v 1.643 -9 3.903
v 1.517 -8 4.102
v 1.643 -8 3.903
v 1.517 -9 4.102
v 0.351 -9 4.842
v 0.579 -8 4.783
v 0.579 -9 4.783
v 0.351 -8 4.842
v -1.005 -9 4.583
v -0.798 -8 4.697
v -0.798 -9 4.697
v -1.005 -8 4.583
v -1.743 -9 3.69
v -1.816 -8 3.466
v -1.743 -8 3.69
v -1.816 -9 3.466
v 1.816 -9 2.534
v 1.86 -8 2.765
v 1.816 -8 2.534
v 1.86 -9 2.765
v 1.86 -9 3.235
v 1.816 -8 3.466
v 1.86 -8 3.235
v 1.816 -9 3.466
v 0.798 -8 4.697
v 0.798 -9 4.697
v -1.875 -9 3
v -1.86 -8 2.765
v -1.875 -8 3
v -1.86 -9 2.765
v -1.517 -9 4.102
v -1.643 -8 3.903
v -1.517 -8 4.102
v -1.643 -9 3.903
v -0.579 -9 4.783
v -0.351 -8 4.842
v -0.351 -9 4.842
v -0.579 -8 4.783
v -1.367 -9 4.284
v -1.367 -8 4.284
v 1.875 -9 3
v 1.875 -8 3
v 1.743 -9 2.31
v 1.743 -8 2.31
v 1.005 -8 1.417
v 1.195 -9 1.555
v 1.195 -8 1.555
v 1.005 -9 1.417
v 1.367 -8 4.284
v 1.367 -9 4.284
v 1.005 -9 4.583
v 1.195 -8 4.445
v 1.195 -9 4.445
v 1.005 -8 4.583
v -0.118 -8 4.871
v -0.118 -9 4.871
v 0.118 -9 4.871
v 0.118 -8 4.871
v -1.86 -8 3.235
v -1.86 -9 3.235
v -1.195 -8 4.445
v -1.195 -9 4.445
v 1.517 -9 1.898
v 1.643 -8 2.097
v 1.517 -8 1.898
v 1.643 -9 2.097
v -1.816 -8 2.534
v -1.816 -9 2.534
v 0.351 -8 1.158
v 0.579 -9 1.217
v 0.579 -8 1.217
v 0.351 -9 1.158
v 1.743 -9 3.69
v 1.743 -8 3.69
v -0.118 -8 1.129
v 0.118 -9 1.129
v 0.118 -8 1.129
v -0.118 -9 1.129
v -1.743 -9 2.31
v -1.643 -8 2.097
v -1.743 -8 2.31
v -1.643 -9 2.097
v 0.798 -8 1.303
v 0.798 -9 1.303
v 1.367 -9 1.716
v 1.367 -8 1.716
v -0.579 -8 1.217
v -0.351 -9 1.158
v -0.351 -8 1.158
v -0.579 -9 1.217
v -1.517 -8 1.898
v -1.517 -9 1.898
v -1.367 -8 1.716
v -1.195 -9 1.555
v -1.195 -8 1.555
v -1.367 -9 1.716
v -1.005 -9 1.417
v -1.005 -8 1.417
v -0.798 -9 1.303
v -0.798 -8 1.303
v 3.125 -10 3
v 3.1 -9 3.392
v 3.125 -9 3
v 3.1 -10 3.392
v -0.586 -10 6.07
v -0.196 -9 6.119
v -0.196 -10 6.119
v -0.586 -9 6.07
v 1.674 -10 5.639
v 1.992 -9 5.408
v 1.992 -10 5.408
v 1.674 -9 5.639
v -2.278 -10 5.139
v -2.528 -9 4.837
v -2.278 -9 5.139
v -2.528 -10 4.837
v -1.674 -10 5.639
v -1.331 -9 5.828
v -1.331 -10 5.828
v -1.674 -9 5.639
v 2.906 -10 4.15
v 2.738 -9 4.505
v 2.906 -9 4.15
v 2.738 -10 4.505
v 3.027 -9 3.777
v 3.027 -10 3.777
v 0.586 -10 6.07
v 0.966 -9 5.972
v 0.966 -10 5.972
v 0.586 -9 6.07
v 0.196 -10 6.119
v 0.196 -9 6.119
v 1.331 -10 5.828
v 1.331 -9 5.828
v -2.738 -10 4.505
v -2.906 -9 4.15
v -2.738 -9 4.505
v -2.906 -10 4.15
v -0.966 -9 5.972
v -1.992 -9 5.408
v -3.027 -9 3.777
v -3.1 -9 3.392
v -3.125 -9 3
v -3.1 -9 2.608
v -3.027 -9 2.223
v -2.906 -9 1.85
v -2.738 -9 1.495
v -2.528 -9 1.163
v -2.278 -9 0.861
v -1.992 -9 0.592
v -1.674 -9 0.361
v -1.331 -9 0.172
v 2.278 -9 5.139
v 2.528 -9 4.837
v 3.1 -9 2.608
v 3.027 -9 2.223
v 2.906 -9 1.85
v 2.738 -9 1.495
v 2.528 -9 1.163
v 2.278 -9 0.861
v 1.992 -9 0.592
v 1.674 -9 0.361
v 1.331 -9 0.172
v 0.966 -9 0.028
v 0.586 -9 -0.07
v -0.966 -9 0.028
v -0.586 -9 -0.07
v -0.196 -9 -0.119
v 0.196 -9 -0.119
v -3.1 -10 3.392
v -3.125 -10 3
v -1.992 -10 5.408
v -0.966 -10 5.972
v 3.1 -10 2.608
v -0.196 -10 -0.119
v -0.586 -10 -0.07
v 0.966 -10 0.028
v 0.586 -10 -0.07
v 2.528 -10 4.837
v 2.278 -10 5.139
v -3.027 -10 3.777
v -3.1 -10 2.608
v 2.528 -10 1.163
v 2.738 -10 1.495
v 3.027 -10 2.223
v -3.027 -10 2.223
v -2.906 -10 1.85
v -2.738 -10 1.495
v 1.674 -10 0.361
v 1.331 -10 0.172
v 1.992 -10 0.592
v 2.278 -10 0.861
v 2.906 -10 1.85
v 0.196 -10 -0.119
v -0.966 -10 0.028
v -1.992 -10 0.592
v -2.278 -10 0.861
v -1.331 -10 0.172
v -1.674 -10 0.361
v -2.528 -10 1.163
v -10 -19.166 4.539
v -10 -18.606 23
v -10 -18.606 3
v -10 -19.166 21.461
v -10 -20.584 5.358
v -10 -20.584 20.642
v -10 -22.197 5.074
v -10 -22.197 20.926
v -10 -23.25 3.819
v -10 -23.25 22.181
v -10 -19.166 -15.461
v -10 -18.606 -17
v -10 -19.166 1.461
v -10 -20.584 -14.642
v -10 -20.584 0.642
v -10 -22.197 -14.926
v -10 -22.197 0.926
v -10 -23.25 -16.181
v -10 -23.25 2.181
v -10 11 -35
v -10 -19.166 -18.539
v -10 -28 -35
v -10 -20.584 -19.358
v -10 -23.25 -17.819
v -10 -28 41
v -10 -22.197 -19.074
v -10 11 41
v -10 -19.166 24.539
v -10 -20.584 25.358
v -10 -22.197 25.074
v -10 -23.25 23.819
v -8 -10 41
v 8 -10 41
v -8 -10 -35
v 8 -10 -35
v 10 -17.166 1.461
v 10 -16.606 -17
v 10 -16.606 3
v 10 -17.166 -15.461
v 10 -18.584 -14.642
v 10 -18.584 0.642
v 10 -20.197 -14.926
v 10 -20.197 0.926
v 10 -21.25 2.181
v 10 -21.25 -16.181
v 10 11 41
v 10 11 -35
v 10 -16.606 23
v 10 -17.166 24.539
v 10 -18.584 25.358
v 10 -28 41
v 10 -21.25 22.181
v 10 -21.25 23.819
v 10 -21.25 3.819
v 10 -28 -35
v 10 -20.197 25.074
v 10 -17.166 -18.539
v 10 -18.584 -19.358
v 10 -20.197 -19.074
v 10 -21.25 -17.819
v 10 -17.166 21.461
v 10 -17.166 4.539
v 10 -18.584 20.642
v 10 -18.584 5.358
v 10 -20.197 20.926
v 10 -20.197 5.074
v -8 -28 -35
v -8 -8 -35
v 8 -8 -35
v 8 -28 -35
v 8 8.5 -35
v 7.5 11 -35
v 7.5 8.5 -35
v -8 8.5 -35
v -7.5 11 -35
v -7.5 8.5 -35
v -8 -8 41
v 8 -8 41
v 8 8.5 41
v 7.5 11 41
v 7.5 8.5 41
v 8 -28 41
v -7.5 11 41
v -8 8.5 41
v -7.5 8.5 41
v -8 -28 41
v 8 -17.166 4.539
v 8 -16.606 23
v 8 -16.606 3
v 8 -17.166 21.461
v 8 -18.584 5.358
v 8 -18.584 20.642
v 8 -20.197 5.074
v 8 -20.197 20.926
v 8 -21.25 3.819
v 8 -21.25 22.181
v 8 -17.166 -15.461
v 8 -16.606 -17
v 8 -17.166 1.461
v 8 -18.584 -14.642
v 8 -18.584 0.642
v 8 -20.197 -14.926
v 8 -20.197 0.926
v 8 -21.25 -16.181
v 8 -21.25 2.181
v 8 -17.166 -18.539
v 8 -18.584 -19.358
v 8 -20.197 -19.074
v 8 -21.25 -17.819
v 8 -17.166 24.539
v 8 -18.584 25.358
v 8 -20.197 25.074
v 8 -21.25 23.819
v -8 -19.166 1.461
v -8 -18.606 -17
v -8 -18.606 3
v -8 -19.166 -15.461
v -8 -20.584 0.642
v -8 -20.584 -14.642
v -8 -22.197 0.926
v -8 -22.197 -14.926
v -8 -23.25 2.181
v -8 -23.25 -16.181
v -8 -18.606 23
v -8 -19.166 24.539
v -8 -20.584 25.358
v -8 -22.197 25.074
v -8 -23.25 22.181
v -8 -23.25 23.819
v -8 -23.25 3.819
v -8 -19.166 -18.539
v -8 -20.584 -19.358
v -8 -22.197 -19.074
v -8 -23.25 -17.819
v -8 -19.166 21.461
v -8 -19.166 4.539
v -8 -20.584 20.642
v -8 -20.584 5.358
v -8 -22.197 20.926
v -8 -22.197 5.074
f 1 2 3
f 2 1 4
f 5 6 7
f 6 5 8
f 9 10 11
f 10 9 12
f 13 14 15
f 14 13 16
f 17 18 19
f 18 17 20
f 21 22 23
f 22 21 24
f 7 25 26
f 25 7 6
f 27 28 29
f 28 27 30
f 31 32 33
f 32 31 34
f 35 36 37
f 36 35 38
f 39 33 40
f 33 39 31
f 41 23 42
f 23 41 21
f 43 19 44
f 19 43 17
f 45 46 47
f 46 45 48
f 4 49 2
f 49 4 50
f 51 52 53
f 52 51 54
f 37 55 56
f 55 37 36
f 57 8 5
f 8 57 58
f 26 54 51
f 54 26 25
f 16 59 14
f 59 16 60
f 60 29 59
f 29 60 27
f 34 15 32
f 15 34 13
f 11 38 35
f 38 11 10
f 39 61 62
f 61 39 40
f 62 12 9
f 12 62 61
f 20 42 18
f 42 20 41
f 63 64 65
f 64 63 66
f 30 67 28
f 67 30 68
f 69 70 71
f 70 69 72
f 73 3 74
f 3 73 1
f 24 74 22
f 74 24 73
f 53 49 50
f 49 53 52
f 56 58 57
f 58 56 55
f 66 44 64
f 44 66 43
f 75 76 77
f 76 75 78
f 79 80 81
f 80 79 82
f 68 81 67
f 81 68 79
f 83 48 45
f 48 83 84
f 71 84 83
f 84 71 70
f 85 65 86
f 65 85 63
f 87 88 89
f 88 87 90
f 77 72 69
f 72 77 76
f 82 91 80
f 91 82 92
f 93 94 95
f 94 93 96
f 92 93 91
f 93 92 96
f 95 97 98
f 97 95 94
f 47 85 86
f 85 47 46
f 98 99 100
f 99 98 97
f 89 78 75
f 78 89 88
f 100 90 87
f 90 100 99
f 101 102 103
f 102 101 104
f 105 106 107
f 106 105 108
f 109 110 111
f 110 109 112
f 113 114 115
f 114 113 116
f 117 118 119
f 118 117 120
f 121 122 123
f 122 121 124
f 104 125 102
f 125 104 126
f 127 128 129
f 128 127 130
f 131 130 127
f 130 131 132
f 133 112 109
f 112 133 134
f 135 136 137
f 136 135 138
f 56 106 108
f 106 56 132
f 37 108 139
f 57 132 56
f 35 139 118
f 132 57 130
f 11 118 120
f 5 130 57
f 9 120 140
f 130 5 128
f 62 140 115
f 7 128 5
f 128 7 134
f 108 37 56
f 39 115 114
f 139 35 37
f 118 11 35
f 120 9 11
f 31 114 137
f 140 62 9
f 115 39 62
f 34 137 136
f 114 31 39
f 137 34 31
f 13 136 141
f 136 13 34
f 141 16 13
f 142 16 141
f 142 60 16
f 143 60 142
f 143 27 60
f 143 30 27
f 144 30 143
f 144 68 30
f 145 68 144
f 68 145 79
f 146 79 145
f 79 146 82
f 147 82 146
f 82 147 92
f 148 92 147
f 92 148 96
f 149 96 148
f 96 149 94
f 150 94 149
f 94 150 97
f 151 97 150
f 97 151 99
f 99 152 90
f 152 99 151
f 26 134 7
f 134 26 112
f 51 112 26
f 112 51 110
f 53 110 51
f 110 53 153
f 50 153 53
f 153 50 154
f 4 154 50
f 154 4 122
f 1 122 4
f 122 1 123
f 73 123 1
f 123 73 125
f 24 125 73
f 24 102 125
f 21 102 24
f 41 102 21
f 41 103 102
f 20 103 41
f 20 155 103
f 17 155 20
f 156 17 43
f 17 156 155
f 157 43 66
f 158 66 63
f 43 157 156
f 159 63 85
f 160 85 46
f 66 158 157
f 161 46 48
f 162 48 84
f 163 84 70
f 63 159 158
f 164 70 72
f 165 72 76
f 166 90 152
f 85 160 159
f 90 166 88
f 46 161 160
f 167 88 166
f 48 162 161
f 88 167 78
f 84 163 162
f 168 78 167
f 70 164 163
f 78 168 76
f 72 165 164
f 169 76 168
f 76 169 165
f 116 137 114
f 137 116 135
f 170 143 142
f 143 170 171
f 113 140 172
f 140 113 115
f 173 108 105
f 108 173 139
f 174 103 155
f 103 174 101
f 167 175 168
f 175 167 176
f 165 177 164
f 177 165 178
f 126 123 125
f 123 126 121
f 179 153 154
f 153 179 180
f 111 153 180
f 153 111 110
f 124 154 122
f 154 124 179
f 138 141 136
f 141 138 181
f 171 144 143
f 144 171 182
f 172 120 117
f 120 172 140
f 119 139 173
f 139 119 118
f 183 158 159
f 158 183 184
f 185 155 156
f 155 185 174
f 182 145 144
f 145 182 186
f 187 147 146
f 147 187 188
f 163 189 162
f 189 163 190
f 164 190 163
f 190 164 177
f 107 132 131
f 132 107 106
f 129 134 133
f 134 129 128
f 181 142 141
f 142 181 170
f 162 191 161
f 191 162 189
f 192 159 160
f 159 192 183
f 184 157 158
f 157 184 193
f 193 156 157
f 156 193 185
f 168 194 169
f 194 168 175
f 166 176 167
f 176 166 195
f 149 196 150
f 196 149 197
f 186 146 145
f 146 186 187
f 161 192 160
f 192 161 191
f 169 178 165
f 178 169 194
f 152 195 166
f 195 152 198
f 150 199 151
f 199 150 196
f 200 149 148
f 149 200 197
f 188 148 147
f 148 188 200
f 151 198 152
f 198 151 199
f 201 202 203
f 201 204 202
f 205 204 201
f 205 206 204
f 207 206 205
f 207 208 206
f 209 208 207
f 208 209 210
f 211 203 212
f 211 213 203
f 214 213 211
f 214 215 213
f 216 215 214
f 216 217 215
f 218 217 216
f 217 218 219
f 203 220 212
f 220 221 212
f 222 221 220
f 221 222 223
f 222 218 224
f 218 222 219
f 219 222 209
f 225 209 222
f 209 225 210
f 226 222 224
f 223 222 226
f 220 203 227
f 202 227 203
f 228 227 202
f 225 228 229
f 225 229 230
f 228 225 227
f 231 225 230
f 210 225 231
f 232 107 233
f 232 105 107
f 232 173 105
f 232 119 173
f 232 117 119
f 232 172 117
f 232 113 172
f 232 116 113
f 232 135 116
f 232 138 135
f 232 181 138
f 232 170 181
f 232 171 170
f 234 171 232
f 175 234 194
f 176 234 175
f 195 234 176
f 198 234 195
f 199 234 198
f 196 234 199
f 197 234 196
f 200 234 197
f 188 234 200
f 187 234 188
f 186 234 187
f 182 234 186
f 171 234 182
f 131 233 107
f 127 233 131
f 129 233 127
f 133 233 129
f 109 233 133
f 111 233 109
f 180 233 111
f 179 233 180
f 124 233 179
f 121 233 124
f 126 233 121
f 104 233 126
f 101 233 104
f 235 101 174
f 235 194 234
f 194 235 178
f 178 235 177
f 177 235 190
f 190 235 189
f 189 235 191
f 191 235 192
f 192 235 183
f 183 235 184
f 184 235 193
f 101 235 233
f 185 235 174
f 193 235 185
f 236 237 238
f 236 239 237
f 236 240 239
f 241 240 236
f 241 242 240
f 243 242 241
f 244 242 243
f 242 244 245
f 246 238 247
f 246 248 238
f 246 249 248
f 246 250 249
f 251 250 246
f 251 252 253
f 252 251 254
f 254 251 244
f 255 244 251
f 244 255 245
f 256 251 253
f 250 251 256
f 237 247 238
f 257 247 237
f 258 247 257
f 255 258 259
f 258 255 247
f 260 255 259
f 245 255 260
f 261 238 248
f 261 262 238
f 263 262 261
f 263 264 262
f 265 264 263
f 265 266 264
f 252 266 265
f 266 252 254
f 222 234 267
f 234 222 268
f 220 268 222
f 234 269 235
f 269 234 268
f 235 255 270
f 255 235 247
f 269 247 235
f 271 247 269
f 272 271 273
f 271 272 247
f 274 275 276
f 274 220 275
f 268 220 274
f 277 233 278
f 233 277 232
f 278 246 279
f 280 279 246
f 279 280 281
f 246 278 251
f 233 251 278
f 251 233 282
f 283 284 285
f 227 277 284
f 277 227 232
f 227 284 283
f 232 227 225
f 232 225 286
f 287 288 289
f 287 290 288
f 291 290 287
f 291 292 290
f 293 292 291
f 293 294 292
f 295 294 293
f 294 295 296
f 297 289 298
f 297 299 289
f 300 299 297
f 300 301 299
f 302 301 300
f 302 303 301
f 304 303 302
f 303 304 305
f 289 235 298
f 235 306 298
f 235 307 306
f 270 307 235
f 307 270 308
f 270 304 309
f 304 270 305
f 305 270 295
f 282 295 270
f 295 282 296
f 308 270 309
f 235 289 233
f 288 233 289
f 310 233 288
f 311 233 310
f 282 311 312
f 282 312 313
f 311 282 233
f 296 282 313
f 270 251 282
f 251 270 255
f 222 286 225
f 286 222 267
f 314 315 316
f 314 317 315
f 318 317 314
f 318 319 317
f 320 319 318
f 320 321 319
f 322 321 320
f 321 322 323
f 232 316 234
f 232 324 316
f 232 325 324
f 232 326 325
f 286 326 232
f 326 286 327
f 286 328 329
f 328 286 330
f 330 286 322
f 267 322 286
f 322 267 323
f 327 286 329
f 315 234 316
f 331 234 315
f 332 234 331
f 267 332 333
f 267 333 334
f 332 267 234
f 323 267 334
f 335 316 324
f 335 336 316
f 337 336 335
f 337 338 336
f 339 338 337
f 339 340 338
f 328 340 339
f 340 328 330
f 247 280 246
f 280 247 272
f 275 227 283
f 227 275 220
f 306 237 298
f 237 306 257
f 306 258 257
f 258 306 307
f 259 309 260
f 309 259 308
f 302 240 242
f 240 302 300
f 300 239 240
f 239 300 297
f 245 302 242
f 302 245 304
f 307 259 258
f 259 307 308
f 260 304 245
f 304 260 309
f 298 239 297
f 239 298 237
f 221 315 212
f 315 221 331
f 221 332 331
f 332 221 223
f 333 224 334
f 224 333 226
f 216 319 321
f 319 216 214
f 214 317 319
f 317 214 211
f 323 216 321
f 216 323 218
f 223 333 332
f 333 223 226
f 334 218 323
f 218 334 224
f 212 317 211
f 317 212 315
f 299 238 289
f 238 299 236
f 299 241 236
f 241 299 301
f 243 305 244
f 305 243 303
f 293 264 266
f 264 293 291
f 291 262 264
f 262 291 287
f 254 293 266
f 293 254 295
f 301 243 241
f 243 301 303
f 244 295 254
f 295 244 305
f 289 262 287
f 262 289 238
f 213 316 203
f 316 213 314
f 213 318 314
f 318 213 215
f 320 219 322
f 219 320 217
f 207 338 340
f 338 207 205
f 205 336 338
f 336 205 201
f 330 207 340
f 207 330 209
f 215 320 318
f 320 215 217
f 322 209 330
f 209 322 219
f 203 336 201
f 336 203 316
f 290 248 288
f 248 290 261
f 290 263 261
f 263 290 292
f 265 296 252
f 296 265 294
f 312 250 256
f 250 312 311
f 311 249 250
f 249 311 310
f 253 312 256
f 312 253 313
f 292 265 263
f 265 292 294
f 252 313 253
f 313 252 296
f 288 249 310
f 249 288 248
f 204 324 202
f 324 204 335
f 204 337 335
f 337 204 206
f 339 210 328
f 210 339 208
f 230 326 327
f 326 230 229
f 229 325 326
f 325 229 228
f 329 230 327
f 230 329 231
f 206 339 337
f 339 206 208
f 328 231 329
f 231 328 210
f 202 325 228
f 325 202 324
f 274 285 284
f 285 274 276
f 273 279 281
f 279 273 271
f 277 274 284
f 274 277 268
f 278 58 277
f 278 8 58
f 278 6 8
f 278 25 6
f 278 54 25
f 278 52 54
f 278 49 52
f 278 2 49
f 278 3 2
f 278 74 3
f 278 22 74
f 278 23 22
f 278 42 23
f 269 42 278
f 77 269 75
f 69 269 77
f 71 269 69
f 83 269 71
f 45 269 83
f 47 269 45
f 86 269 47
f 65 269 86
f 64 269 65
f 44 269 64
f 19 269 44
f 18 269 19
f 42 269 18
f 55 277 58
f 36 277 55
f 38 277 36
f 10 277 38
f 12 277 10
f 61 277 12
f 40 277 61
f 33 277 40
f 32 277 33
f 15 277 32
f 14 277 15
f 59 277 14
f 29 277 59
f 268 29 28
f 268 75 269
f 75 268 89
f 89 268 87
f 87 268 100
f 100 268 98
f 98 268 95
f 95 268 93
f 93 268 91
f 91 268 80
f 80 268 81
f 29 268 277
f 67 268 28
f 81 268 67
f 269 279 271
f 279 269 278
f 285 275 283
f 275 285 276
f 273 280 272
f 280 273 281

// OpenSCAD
// Openbeam Kossel Pro tool holder
// Mount for the included wera drivers
// License: CC1.0 Universal

$fn=50;

plate_length = 76;
plate_height = 20;

plate_width  = 20;
plate_thickness = 2;

num_drills = 3;
inset_depth = 1.5;
drill_depth = 4;

wall_length = 19;

module polyhole(h, d) {
    n = max(round(2 * d),3);
    rotate([0,0,180])
        cylinder(h = h, r = (d / 2) / cos (180 / n), $fn = n);
}

module openbeam() {
    linear_extrude(rotate = 90, height = 100, center = true, convexity = 10) import (file = "openbeam.dxf");
}


module inset_drills(distance, drill_size, inset_depth) {
    translate([0, distance*20, -drill_depth]) cylinder(r=drill_size/2, h=drill_depth);
    translate([0, distance*20, -1]) cylinder(r=drill_size/1.2, h=inset_depth);
}

module plate() {
    difference() {
      union() {
        // Interface plate (to extrusion)
        cube([plate_thickness, plate_length, plate_height]);
        
        // Bottom plate (where driver shafts exit))
        #cube([plate_width, plate_length, plate_thickness]);
          
        // Top plate (driver landing area)
        translate([19-wall_length, 0, plate_height-2]) #cube([plate_width, plate_length, plate_thickness]);  
         
        // Top 'ceiling' wall  
        translate([-(wall_length), 0, 10]) cube([wall_length, plate_length, plate_height - 10]); 
          
        // Bottom 'floor' wall
        translate([-(wall_length), 0, 0]) cube([wall_length, plate_length, plate_height - 10]);    
      }
    
      // Mounting plate drills
      translate([2,  -2, 10]) rotate([0,90,0]) inset_drills(2, 3.75, 2);
      
      // Driver drills
      for ( i = [ 1 : num_drills ] ) {
        #translate([11, -2, 2]) translate([0, i*20, -3]) polyhole(9, 4.5);
        #translate([13, -2, 16]) translate([0, i*20, -3]) polyhole(9, 4.5);
      }
      
      // Snap
      translate([-(wall_length - 2.5), 0, 2]) cube([(wall_length -2.5), plate_length, 16]);
      
      // Cutouts for extrusion
      translate([-wall_length, 0, 2.5]) cube([4, plate_length, 15]);
    }
}

rotate([0, 90, 180]) {
    rotate([0, 0, 90]) translate([8, -35, -10]) plate();
    //rotate([0, 90, 180]) translate([0, 0, 0]) openbeam();
}
